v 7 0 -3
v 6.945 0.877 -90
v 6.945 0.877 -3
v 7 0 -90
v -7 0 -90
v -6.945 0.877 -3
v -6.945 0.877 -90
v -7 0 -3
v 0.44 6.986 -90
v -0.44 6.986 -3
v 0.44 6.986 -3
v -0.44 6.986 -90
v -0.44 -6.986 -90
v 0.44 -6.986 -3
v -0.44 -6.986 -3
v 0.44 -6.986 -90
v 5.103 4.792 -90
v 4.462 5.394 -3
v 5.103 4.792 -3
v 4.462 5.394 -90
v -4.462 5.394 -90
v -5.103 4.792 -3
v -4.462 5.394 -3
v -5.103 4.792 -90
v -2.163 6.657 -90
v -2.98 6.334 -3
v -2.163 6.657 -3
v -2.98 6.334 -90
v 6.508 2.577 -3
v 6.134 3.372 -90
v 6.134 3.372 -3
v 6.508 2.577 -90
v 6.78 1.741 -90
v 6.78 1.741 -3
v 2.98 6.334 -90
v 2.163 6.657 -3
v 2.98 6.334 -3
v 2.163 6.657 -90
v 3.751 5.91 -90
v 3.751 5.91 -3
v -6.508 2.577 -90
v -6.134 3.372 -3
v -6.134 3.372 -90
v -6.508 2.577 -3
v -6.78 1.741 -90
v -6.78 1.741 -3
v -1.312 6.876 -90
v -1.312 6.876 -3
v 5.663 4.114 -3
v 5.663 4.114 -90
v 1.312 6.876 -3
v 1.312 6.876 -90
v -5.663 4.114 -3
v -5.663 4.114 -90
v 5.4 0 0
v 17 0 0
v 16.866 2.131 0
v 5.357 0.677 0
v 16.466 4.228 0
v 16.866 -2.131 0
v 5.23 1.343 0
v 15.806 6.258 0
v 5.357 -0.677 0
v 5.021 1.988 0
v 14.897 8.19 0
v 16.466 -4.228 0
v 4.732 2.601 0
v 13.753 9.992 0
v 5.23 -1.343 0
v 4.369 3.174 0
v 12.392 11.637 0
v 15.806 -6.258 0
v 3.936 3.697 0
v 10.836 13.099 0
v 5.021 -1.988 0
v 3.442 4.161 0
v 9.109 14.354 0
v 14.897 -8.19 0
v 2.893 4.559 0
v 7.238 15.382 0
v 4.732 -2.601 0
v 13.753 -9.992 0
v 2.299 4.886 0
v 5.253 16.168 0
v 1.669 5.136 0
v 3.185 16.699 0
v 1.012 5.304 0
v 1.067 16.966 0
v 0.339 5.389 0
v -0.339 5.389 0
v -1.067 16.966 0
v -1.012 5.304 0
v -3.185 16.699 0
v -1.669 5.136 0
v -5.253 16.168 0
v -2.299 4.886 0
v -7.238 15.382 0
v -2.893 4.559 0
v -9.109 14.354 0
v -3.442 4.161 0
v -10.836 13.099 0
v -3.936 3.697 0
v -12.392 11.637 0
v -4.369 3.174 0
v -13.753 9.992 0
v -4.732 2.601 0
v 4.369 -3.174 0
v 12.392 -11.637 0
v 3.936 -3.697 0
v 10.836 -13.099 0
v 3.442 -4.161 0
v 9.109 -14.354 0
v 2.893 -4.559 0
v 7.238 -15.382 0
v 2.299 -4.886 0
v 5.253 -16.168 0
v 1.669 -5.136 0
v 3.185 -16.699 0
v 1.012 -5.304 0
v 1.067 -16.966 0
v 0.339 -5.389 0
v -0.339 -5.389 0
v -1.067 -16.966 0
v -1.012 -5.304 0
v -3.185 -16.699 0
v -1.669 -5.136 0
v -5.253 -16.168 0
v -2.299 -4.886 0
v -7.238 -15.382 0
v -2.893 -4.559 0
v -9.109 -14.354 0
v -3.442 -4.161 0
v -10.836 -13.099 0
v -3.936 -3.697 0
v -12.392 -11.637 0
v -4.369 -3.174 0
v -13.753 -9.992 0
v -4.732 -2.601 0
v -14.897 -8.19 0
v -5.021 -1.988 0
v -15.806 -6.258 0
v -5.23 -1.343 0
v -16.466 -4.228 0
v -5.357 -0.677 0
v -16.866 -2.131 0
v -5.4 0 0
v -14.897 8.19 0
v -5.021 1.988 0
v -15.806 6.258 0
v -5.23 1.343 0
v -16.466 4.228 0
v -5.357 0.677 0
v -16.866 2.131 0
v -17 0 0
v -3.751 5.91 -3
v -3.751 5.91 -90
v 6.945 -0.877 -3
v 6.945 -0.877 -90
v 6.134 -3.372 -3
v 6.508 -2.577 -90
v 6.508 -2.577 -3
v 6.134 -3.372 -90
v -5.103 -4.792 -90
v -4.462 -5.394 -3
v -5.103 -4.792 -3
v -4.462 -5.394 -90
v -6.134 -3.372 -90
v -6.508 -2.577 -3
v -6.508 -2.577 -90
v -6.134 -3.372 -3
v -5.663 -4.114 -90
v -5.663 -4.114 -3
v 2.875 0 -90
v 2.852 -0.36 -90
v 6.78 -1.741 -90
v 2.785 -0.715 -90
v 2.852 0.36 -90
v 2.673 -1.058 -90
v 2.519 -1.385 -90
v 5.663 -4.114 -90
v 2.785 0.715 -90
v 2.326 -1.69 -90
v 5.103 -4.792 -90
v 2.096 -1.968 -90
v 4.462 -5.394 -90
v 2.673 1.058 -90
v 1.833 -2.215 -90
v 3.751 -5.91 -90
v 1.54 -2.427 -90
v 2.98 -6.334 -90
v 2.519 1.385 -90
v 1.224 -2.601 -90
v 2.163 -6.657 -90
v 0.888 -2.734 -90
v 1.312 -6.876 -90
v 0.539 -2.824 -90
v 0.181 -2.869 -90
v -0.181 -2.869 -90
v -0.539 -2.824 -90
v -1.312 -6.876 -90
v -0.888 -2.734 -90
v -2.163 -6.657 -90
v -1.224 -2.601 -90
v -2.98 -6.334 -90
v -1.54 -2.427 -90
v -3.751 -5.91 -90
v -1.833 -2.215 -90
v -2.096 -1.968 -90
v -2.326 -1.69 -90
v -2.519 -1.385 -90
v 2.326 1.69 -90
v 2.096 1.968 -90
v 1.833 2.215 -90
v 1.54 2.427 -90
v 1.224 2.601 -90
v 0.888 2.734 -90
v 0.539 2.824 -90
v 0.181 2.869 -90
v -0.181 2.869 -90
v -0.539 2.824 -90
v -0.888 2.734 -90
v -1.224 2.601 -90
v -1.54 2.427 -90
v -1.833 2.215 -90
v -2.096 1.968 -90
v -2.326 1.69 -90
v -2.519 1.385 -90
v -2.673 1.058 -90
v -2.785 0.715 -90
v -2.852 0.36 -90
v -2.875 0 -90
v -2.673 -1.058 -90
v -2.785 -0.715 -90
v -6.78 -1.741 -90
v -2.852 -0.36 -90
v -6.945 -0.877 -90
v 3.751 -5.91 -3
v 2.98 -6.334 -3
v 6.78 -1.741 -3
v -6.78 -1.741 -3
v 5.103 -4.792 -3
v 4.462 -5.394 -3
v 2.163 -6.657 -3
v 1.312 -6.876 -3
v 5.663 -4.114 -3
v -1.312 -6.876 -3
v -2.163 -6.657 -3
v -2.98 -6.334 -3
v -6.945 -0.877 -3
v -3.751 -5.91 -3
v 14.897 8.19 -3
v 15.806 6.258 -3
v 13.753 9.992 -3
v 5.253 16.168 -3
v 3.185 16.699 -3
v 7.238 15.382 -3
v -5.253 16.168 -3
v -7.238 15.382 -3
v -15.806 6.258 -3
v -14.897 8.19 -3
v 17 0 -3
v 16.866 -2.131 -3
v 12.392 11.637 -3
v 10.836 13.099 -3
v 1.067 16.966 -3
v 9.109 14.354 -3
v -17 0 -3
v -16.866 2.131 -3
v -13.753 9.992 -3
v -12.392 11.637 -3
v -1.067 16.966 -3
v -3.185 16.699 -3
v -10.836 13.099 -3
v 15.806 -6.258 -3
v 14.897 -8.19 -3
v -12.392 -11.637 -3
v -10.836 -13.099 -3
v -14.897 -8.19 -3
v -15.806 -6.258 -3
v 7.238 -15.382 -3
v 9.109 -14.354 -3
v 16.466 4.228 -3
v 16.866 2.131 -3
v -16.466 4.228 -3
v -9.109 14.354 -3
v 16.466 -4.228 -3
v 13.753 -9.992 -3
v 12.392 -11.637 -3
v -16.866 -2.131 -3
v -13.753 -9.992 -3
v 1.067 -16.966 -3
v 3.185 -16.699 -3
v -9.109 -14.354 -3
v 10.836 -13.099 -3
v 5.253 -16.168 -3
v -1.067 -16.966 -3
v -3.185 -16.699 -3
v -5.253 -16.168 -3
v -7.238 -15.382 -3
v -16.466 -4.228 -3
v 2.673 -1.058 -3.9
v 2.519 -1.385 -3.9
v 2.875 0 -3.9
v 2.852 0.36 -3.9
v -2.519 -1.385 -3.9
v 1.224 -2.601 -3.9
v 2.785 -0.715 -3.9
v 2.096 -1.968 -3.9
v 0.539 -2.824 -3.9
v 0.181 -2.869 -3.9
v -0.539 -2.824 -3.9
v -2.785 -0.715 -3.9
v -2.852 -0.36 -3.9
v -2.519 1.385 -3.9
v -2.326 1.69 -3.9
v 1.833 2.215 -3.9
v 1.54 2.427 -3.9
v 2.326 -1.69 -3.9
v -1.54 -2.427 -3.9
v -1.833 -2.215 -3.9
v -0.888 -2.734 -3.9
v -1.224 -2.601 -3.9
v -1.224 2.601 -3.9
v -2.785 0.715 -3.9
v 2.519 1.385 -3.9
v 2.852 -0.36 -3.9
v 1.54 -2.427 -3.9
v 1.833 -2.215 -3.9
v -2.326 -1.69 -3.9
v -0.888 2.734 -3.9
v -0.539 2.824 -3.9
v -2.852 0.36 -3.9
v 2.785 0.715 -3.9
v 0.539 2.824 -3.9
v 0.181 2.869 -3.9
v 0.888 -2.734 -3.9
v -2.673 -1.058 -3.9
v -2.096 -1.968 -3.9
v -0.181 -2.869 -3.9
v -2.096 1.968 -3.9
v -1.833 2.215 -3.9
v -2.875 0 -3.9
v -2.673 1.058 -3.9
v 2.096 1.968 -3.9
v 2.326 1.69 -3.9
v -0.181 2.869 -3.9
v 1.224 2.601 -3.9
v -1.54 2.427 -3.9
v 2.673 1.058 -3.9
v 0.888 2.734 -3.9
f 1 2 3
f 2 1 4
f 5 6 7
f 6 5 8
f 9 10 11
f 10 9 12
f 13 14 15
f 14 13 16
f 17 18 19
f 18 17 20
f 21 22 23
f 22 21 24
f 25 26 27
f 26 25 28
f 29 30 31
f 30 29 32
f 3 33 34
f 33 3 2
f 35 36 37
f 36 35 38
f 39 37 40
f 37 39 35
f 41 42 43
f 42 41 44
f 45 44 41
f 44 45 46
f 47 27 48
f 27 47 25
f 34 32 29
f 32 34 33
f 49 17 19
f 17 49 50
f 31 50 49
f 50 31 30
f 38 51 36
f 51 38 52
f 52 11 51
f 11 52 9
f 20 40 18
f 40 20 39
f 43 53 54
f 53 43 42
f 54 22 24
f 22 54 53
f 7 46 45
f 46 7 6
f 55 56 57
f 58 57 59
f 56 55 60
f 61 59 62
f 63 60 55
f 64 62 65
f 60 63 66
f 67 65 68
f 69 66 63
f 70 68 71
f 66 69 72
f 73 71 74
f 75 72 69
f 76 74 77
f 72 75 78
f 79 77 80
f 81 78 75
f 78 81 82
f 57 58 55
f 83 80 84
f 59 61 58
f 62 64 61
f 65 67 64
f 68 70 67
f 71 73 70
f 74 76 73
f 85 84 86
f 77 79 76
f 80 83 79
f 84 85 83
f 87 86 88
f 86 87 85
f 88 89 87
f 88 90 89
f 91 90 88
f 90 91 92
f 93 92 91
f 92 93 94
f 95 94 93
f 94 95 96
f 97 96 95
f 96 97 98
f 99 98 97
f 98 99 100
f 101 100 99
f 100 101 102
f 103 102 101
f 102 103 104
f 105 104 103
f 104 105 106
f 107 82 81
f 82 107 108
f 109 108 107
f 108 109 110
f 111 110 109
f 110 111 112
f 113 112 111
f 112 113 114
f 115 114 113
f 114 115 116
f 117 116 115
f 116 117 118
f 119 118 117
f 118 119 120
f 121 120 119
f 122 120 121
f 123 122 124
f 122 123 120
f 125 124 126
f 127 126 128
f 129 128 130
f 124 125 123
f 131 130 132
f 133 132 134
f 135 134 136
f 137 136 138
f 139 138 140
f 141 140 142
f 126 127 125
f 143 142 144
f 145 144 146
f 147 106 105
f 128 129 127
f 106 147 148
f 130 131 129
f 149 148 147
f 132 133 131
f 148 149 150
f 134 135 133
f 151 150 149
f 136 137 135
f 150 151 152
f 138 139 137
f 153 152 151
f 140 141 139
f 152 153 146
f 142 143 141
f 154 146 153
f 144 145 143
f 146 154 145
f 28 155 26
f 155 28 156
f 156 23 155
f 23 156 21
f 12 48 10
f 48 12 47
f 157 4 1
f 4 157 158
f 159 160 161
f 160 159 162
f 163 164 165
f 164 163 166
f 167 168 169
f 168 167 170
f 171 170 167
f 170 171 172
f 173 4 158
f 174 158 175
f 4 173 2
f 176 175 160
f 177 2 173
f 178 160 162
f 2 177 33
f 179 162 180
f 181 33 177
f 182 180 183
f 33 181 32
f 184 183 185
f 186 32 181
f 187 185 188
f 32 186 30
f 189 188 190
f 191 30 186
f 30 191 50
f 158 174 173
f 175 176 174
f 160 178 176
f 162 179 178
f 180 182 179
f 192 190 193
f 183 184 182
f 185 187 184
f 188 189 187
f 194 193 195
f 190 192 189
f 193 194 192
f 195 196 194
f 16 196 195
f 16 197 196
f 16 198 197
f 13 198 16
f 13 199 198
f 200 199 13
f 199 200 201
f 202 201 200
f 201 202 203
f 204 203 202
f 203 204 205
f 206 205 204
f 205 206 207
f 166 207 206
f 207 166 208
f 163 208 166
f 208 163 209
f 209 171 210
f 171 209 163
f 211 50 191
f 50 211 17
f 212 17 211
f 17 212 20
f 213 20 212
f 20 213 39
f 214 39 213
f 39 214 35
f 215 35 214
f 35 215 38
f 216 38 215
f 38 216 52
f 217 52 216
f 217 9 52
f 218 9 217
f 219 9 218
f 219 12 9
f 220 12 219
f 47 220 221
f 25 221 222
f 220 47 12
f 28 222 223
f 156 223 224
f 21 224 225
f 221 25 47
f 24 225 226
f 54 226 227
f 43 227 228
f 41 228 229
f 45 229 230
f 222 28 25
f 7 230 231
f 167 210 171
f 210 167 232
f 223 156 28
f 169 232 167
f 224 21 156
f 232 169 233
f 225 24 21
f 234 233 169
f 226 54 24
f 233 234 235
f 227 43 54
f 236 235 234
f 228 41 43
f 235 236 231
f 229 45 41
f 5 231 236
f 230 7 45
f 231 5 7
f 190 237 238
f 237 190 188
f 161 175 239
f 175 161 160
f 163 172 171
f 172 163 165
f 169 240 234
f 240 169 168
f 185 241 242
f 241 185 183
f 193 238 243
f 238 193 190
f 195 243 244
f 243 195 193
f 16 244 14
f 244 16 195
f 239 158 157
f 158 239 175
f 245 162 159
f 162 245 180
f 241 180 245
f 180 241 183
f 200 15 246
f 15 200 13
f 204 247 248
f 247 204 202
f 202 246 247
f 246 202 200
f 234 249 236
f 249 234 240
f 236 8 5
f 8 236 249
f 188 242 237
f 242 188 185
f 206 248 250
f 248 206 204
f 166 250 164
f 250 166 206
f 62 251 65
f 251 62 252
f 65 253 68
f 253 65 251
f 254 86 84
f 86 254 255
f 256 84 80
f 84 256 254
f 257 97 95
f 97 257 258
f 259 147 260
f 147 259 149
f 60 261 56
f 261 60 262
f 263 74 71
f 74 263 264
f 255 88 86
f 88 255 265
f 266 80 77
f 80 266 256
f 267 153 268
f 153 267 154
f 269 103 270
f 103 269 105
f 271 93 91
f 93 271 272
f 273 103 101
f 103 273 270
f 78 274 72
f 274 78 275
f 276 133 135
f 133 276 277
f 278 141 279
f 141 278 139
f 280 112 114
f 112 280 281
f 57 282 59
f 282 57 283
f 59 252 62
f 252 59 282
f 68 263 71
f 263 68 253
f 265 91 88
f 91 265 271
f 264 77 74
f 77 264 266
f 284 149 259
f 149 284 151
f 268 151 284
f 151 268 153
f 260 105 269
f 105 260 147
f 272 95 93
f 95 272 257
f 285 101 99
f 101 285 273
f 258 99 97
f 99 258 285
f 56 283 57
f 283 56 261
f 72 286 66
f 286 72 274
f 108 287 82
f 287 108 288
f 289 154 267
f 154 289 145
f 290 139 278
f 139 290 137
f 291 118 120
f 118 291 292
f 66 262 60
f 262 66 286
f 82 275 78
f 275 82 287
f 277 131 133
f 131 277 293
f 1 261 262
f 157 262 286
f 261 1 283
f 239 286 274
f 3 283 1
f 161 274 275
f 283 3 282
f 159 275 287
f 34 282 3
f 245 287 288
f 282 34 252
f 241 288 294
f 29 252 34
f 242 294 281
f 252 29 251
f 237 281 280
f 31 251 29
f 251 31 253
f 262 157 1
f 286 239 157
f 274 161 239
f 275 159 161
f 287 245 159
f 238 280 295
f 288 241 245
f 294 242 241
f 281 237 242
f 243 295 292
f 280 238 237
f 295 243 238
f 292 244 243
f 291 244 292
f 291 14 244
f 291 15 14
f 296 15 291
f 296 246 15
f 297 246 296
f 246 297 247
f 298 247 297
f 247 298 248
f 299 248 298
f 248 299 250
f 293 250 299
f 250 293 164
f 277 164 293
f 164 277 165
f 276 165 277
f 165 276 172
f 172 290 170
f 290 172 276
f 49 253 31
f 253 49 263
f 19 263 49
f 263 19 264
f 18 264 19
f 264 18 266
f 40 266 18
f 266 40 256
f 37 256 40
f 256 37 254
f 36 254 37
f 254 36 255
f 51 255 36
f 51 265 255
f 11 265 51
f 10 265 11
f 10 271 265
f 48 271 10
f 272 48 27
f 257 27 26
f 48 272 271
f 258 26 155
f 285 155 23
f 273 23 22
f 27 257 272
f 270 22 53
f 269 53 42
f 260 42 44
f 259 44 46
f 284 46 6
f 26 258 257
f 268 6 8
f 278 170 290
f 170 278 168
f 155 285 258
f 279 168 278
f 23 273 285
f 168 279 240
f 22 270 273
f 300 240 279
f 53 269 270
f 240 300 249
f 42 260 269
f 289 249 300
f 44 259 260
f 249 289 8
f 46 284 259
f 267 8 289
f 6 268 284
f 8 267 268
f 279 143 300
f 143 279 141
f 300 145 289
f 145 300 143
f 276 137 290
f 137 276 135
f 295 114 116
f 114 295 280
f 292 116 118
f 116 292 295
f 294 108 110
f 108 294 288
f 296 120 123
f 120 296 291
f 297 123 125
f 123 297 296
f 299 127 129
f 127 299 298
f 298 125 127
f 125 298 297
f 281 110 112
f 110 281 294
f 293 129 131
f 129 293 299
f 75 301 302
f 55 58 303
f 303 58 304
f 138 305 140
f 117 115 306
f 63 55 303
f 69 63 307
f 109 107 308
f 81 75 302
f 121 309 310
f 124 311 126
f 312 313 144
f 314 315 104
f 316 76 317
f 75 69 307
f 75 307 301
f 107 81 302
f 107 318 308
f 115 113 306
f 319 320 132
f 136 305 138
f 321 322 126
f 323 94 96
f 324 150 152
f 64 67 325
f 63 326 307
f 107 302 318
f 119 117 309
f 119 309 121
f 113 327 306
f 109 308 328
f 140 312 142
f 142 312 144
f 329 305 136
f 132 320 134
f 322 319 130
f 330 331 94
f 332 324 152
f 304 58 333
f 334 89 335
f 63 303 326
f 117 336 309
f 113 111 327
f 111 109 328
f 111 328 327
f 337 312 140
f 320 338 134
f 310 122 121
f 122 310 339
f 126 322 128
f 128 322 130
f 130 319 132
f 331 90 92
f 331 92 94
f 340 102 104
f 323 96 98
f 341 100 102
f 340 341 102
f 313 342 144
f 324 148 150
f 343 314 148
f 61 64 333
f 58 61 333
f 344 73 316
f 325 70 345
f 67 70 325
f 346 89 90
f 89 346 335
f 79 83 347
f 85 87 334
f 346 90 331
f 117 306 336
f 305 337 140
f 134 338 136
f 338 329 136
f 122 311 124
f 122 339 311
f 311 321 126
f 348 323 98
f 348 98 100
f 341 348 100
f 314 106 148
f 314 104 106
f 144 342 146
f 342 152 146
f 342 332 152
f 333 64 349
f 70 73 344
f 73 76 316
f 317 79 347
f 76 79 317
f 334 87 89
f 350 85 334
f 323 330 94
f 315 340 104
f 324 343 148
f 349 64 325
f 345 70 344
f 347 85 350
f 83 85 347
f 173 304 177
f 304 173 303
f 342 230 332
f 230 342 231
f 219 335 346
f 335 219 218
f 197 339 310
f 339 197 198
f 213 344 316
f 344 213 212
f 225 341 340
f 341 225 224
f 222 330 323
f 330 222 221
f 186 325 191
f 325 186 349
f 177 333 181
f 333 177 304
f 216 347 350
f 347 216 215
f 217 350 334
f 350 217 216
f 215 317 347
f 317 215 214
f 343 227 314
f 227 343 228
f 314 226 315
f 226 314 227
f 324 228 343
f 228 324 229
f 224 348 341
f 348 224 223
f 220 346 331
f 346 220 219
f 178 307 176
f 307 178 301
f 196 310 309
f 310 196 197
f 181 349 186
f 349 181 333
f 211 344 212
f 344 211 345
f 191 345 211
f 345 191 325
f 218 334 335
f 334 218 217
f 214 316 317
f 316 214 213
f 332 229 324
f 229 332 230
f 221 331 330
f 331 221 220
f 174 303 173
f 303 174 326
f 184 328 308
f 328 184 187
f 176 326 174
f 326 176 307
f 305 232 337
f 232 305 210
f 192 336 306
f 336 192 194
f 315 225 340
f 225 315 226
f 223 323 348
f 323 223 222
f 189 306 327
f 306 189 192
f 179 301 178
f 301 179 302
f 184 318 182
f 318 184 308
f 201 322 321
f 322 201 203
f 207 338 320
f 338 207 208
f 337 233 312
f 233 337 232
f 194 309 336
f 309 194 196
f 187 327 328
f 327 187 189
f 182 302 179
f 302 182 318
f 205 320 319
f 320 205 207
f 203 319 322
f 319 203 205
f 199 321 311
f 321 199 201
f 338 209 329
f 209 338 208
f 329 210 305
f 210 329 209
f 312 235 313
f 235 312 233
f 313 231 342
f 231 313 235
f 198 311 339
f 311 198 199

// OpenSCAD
$fn = 50;


difference() {
	union() {
		translate(v = [0, 0, -90.0000000000]) {
			cylinder(h = 90, r = 7.0000000000);
		}
		translate(v = [0, 0, -3.0000000000]) {
			cylinder(h = 3, r = 17.0000000000);
		}
	}
	union() {
		translate(v = [0, 0, 0]) {
			rotate(a = [0, 0, 0]) {
				difference() {
					union() {
						#translate(v = [0, 0, -90.0000000000]) {
							cylinder(h = 90, r = 2.6000000000);
						}
						#translate(v = [0, 0, -3.9000000000]) {
							cylinder(h = 3.9000000000, r = 7.0000000000, r1 = 2.8750000000, r2 = 5.4000000000);
						}
						#translate(v = [0, 0, -90.0000000000]) {
							cylinder(h = 90, r = 2.8750000000);
						}
						#translate(v = [0, 0, -90.0000000000]) {
							cylinder(h = 90, r = 2.6000000000);
						}
					}
					union();
				}
			}
		}
	}
}
